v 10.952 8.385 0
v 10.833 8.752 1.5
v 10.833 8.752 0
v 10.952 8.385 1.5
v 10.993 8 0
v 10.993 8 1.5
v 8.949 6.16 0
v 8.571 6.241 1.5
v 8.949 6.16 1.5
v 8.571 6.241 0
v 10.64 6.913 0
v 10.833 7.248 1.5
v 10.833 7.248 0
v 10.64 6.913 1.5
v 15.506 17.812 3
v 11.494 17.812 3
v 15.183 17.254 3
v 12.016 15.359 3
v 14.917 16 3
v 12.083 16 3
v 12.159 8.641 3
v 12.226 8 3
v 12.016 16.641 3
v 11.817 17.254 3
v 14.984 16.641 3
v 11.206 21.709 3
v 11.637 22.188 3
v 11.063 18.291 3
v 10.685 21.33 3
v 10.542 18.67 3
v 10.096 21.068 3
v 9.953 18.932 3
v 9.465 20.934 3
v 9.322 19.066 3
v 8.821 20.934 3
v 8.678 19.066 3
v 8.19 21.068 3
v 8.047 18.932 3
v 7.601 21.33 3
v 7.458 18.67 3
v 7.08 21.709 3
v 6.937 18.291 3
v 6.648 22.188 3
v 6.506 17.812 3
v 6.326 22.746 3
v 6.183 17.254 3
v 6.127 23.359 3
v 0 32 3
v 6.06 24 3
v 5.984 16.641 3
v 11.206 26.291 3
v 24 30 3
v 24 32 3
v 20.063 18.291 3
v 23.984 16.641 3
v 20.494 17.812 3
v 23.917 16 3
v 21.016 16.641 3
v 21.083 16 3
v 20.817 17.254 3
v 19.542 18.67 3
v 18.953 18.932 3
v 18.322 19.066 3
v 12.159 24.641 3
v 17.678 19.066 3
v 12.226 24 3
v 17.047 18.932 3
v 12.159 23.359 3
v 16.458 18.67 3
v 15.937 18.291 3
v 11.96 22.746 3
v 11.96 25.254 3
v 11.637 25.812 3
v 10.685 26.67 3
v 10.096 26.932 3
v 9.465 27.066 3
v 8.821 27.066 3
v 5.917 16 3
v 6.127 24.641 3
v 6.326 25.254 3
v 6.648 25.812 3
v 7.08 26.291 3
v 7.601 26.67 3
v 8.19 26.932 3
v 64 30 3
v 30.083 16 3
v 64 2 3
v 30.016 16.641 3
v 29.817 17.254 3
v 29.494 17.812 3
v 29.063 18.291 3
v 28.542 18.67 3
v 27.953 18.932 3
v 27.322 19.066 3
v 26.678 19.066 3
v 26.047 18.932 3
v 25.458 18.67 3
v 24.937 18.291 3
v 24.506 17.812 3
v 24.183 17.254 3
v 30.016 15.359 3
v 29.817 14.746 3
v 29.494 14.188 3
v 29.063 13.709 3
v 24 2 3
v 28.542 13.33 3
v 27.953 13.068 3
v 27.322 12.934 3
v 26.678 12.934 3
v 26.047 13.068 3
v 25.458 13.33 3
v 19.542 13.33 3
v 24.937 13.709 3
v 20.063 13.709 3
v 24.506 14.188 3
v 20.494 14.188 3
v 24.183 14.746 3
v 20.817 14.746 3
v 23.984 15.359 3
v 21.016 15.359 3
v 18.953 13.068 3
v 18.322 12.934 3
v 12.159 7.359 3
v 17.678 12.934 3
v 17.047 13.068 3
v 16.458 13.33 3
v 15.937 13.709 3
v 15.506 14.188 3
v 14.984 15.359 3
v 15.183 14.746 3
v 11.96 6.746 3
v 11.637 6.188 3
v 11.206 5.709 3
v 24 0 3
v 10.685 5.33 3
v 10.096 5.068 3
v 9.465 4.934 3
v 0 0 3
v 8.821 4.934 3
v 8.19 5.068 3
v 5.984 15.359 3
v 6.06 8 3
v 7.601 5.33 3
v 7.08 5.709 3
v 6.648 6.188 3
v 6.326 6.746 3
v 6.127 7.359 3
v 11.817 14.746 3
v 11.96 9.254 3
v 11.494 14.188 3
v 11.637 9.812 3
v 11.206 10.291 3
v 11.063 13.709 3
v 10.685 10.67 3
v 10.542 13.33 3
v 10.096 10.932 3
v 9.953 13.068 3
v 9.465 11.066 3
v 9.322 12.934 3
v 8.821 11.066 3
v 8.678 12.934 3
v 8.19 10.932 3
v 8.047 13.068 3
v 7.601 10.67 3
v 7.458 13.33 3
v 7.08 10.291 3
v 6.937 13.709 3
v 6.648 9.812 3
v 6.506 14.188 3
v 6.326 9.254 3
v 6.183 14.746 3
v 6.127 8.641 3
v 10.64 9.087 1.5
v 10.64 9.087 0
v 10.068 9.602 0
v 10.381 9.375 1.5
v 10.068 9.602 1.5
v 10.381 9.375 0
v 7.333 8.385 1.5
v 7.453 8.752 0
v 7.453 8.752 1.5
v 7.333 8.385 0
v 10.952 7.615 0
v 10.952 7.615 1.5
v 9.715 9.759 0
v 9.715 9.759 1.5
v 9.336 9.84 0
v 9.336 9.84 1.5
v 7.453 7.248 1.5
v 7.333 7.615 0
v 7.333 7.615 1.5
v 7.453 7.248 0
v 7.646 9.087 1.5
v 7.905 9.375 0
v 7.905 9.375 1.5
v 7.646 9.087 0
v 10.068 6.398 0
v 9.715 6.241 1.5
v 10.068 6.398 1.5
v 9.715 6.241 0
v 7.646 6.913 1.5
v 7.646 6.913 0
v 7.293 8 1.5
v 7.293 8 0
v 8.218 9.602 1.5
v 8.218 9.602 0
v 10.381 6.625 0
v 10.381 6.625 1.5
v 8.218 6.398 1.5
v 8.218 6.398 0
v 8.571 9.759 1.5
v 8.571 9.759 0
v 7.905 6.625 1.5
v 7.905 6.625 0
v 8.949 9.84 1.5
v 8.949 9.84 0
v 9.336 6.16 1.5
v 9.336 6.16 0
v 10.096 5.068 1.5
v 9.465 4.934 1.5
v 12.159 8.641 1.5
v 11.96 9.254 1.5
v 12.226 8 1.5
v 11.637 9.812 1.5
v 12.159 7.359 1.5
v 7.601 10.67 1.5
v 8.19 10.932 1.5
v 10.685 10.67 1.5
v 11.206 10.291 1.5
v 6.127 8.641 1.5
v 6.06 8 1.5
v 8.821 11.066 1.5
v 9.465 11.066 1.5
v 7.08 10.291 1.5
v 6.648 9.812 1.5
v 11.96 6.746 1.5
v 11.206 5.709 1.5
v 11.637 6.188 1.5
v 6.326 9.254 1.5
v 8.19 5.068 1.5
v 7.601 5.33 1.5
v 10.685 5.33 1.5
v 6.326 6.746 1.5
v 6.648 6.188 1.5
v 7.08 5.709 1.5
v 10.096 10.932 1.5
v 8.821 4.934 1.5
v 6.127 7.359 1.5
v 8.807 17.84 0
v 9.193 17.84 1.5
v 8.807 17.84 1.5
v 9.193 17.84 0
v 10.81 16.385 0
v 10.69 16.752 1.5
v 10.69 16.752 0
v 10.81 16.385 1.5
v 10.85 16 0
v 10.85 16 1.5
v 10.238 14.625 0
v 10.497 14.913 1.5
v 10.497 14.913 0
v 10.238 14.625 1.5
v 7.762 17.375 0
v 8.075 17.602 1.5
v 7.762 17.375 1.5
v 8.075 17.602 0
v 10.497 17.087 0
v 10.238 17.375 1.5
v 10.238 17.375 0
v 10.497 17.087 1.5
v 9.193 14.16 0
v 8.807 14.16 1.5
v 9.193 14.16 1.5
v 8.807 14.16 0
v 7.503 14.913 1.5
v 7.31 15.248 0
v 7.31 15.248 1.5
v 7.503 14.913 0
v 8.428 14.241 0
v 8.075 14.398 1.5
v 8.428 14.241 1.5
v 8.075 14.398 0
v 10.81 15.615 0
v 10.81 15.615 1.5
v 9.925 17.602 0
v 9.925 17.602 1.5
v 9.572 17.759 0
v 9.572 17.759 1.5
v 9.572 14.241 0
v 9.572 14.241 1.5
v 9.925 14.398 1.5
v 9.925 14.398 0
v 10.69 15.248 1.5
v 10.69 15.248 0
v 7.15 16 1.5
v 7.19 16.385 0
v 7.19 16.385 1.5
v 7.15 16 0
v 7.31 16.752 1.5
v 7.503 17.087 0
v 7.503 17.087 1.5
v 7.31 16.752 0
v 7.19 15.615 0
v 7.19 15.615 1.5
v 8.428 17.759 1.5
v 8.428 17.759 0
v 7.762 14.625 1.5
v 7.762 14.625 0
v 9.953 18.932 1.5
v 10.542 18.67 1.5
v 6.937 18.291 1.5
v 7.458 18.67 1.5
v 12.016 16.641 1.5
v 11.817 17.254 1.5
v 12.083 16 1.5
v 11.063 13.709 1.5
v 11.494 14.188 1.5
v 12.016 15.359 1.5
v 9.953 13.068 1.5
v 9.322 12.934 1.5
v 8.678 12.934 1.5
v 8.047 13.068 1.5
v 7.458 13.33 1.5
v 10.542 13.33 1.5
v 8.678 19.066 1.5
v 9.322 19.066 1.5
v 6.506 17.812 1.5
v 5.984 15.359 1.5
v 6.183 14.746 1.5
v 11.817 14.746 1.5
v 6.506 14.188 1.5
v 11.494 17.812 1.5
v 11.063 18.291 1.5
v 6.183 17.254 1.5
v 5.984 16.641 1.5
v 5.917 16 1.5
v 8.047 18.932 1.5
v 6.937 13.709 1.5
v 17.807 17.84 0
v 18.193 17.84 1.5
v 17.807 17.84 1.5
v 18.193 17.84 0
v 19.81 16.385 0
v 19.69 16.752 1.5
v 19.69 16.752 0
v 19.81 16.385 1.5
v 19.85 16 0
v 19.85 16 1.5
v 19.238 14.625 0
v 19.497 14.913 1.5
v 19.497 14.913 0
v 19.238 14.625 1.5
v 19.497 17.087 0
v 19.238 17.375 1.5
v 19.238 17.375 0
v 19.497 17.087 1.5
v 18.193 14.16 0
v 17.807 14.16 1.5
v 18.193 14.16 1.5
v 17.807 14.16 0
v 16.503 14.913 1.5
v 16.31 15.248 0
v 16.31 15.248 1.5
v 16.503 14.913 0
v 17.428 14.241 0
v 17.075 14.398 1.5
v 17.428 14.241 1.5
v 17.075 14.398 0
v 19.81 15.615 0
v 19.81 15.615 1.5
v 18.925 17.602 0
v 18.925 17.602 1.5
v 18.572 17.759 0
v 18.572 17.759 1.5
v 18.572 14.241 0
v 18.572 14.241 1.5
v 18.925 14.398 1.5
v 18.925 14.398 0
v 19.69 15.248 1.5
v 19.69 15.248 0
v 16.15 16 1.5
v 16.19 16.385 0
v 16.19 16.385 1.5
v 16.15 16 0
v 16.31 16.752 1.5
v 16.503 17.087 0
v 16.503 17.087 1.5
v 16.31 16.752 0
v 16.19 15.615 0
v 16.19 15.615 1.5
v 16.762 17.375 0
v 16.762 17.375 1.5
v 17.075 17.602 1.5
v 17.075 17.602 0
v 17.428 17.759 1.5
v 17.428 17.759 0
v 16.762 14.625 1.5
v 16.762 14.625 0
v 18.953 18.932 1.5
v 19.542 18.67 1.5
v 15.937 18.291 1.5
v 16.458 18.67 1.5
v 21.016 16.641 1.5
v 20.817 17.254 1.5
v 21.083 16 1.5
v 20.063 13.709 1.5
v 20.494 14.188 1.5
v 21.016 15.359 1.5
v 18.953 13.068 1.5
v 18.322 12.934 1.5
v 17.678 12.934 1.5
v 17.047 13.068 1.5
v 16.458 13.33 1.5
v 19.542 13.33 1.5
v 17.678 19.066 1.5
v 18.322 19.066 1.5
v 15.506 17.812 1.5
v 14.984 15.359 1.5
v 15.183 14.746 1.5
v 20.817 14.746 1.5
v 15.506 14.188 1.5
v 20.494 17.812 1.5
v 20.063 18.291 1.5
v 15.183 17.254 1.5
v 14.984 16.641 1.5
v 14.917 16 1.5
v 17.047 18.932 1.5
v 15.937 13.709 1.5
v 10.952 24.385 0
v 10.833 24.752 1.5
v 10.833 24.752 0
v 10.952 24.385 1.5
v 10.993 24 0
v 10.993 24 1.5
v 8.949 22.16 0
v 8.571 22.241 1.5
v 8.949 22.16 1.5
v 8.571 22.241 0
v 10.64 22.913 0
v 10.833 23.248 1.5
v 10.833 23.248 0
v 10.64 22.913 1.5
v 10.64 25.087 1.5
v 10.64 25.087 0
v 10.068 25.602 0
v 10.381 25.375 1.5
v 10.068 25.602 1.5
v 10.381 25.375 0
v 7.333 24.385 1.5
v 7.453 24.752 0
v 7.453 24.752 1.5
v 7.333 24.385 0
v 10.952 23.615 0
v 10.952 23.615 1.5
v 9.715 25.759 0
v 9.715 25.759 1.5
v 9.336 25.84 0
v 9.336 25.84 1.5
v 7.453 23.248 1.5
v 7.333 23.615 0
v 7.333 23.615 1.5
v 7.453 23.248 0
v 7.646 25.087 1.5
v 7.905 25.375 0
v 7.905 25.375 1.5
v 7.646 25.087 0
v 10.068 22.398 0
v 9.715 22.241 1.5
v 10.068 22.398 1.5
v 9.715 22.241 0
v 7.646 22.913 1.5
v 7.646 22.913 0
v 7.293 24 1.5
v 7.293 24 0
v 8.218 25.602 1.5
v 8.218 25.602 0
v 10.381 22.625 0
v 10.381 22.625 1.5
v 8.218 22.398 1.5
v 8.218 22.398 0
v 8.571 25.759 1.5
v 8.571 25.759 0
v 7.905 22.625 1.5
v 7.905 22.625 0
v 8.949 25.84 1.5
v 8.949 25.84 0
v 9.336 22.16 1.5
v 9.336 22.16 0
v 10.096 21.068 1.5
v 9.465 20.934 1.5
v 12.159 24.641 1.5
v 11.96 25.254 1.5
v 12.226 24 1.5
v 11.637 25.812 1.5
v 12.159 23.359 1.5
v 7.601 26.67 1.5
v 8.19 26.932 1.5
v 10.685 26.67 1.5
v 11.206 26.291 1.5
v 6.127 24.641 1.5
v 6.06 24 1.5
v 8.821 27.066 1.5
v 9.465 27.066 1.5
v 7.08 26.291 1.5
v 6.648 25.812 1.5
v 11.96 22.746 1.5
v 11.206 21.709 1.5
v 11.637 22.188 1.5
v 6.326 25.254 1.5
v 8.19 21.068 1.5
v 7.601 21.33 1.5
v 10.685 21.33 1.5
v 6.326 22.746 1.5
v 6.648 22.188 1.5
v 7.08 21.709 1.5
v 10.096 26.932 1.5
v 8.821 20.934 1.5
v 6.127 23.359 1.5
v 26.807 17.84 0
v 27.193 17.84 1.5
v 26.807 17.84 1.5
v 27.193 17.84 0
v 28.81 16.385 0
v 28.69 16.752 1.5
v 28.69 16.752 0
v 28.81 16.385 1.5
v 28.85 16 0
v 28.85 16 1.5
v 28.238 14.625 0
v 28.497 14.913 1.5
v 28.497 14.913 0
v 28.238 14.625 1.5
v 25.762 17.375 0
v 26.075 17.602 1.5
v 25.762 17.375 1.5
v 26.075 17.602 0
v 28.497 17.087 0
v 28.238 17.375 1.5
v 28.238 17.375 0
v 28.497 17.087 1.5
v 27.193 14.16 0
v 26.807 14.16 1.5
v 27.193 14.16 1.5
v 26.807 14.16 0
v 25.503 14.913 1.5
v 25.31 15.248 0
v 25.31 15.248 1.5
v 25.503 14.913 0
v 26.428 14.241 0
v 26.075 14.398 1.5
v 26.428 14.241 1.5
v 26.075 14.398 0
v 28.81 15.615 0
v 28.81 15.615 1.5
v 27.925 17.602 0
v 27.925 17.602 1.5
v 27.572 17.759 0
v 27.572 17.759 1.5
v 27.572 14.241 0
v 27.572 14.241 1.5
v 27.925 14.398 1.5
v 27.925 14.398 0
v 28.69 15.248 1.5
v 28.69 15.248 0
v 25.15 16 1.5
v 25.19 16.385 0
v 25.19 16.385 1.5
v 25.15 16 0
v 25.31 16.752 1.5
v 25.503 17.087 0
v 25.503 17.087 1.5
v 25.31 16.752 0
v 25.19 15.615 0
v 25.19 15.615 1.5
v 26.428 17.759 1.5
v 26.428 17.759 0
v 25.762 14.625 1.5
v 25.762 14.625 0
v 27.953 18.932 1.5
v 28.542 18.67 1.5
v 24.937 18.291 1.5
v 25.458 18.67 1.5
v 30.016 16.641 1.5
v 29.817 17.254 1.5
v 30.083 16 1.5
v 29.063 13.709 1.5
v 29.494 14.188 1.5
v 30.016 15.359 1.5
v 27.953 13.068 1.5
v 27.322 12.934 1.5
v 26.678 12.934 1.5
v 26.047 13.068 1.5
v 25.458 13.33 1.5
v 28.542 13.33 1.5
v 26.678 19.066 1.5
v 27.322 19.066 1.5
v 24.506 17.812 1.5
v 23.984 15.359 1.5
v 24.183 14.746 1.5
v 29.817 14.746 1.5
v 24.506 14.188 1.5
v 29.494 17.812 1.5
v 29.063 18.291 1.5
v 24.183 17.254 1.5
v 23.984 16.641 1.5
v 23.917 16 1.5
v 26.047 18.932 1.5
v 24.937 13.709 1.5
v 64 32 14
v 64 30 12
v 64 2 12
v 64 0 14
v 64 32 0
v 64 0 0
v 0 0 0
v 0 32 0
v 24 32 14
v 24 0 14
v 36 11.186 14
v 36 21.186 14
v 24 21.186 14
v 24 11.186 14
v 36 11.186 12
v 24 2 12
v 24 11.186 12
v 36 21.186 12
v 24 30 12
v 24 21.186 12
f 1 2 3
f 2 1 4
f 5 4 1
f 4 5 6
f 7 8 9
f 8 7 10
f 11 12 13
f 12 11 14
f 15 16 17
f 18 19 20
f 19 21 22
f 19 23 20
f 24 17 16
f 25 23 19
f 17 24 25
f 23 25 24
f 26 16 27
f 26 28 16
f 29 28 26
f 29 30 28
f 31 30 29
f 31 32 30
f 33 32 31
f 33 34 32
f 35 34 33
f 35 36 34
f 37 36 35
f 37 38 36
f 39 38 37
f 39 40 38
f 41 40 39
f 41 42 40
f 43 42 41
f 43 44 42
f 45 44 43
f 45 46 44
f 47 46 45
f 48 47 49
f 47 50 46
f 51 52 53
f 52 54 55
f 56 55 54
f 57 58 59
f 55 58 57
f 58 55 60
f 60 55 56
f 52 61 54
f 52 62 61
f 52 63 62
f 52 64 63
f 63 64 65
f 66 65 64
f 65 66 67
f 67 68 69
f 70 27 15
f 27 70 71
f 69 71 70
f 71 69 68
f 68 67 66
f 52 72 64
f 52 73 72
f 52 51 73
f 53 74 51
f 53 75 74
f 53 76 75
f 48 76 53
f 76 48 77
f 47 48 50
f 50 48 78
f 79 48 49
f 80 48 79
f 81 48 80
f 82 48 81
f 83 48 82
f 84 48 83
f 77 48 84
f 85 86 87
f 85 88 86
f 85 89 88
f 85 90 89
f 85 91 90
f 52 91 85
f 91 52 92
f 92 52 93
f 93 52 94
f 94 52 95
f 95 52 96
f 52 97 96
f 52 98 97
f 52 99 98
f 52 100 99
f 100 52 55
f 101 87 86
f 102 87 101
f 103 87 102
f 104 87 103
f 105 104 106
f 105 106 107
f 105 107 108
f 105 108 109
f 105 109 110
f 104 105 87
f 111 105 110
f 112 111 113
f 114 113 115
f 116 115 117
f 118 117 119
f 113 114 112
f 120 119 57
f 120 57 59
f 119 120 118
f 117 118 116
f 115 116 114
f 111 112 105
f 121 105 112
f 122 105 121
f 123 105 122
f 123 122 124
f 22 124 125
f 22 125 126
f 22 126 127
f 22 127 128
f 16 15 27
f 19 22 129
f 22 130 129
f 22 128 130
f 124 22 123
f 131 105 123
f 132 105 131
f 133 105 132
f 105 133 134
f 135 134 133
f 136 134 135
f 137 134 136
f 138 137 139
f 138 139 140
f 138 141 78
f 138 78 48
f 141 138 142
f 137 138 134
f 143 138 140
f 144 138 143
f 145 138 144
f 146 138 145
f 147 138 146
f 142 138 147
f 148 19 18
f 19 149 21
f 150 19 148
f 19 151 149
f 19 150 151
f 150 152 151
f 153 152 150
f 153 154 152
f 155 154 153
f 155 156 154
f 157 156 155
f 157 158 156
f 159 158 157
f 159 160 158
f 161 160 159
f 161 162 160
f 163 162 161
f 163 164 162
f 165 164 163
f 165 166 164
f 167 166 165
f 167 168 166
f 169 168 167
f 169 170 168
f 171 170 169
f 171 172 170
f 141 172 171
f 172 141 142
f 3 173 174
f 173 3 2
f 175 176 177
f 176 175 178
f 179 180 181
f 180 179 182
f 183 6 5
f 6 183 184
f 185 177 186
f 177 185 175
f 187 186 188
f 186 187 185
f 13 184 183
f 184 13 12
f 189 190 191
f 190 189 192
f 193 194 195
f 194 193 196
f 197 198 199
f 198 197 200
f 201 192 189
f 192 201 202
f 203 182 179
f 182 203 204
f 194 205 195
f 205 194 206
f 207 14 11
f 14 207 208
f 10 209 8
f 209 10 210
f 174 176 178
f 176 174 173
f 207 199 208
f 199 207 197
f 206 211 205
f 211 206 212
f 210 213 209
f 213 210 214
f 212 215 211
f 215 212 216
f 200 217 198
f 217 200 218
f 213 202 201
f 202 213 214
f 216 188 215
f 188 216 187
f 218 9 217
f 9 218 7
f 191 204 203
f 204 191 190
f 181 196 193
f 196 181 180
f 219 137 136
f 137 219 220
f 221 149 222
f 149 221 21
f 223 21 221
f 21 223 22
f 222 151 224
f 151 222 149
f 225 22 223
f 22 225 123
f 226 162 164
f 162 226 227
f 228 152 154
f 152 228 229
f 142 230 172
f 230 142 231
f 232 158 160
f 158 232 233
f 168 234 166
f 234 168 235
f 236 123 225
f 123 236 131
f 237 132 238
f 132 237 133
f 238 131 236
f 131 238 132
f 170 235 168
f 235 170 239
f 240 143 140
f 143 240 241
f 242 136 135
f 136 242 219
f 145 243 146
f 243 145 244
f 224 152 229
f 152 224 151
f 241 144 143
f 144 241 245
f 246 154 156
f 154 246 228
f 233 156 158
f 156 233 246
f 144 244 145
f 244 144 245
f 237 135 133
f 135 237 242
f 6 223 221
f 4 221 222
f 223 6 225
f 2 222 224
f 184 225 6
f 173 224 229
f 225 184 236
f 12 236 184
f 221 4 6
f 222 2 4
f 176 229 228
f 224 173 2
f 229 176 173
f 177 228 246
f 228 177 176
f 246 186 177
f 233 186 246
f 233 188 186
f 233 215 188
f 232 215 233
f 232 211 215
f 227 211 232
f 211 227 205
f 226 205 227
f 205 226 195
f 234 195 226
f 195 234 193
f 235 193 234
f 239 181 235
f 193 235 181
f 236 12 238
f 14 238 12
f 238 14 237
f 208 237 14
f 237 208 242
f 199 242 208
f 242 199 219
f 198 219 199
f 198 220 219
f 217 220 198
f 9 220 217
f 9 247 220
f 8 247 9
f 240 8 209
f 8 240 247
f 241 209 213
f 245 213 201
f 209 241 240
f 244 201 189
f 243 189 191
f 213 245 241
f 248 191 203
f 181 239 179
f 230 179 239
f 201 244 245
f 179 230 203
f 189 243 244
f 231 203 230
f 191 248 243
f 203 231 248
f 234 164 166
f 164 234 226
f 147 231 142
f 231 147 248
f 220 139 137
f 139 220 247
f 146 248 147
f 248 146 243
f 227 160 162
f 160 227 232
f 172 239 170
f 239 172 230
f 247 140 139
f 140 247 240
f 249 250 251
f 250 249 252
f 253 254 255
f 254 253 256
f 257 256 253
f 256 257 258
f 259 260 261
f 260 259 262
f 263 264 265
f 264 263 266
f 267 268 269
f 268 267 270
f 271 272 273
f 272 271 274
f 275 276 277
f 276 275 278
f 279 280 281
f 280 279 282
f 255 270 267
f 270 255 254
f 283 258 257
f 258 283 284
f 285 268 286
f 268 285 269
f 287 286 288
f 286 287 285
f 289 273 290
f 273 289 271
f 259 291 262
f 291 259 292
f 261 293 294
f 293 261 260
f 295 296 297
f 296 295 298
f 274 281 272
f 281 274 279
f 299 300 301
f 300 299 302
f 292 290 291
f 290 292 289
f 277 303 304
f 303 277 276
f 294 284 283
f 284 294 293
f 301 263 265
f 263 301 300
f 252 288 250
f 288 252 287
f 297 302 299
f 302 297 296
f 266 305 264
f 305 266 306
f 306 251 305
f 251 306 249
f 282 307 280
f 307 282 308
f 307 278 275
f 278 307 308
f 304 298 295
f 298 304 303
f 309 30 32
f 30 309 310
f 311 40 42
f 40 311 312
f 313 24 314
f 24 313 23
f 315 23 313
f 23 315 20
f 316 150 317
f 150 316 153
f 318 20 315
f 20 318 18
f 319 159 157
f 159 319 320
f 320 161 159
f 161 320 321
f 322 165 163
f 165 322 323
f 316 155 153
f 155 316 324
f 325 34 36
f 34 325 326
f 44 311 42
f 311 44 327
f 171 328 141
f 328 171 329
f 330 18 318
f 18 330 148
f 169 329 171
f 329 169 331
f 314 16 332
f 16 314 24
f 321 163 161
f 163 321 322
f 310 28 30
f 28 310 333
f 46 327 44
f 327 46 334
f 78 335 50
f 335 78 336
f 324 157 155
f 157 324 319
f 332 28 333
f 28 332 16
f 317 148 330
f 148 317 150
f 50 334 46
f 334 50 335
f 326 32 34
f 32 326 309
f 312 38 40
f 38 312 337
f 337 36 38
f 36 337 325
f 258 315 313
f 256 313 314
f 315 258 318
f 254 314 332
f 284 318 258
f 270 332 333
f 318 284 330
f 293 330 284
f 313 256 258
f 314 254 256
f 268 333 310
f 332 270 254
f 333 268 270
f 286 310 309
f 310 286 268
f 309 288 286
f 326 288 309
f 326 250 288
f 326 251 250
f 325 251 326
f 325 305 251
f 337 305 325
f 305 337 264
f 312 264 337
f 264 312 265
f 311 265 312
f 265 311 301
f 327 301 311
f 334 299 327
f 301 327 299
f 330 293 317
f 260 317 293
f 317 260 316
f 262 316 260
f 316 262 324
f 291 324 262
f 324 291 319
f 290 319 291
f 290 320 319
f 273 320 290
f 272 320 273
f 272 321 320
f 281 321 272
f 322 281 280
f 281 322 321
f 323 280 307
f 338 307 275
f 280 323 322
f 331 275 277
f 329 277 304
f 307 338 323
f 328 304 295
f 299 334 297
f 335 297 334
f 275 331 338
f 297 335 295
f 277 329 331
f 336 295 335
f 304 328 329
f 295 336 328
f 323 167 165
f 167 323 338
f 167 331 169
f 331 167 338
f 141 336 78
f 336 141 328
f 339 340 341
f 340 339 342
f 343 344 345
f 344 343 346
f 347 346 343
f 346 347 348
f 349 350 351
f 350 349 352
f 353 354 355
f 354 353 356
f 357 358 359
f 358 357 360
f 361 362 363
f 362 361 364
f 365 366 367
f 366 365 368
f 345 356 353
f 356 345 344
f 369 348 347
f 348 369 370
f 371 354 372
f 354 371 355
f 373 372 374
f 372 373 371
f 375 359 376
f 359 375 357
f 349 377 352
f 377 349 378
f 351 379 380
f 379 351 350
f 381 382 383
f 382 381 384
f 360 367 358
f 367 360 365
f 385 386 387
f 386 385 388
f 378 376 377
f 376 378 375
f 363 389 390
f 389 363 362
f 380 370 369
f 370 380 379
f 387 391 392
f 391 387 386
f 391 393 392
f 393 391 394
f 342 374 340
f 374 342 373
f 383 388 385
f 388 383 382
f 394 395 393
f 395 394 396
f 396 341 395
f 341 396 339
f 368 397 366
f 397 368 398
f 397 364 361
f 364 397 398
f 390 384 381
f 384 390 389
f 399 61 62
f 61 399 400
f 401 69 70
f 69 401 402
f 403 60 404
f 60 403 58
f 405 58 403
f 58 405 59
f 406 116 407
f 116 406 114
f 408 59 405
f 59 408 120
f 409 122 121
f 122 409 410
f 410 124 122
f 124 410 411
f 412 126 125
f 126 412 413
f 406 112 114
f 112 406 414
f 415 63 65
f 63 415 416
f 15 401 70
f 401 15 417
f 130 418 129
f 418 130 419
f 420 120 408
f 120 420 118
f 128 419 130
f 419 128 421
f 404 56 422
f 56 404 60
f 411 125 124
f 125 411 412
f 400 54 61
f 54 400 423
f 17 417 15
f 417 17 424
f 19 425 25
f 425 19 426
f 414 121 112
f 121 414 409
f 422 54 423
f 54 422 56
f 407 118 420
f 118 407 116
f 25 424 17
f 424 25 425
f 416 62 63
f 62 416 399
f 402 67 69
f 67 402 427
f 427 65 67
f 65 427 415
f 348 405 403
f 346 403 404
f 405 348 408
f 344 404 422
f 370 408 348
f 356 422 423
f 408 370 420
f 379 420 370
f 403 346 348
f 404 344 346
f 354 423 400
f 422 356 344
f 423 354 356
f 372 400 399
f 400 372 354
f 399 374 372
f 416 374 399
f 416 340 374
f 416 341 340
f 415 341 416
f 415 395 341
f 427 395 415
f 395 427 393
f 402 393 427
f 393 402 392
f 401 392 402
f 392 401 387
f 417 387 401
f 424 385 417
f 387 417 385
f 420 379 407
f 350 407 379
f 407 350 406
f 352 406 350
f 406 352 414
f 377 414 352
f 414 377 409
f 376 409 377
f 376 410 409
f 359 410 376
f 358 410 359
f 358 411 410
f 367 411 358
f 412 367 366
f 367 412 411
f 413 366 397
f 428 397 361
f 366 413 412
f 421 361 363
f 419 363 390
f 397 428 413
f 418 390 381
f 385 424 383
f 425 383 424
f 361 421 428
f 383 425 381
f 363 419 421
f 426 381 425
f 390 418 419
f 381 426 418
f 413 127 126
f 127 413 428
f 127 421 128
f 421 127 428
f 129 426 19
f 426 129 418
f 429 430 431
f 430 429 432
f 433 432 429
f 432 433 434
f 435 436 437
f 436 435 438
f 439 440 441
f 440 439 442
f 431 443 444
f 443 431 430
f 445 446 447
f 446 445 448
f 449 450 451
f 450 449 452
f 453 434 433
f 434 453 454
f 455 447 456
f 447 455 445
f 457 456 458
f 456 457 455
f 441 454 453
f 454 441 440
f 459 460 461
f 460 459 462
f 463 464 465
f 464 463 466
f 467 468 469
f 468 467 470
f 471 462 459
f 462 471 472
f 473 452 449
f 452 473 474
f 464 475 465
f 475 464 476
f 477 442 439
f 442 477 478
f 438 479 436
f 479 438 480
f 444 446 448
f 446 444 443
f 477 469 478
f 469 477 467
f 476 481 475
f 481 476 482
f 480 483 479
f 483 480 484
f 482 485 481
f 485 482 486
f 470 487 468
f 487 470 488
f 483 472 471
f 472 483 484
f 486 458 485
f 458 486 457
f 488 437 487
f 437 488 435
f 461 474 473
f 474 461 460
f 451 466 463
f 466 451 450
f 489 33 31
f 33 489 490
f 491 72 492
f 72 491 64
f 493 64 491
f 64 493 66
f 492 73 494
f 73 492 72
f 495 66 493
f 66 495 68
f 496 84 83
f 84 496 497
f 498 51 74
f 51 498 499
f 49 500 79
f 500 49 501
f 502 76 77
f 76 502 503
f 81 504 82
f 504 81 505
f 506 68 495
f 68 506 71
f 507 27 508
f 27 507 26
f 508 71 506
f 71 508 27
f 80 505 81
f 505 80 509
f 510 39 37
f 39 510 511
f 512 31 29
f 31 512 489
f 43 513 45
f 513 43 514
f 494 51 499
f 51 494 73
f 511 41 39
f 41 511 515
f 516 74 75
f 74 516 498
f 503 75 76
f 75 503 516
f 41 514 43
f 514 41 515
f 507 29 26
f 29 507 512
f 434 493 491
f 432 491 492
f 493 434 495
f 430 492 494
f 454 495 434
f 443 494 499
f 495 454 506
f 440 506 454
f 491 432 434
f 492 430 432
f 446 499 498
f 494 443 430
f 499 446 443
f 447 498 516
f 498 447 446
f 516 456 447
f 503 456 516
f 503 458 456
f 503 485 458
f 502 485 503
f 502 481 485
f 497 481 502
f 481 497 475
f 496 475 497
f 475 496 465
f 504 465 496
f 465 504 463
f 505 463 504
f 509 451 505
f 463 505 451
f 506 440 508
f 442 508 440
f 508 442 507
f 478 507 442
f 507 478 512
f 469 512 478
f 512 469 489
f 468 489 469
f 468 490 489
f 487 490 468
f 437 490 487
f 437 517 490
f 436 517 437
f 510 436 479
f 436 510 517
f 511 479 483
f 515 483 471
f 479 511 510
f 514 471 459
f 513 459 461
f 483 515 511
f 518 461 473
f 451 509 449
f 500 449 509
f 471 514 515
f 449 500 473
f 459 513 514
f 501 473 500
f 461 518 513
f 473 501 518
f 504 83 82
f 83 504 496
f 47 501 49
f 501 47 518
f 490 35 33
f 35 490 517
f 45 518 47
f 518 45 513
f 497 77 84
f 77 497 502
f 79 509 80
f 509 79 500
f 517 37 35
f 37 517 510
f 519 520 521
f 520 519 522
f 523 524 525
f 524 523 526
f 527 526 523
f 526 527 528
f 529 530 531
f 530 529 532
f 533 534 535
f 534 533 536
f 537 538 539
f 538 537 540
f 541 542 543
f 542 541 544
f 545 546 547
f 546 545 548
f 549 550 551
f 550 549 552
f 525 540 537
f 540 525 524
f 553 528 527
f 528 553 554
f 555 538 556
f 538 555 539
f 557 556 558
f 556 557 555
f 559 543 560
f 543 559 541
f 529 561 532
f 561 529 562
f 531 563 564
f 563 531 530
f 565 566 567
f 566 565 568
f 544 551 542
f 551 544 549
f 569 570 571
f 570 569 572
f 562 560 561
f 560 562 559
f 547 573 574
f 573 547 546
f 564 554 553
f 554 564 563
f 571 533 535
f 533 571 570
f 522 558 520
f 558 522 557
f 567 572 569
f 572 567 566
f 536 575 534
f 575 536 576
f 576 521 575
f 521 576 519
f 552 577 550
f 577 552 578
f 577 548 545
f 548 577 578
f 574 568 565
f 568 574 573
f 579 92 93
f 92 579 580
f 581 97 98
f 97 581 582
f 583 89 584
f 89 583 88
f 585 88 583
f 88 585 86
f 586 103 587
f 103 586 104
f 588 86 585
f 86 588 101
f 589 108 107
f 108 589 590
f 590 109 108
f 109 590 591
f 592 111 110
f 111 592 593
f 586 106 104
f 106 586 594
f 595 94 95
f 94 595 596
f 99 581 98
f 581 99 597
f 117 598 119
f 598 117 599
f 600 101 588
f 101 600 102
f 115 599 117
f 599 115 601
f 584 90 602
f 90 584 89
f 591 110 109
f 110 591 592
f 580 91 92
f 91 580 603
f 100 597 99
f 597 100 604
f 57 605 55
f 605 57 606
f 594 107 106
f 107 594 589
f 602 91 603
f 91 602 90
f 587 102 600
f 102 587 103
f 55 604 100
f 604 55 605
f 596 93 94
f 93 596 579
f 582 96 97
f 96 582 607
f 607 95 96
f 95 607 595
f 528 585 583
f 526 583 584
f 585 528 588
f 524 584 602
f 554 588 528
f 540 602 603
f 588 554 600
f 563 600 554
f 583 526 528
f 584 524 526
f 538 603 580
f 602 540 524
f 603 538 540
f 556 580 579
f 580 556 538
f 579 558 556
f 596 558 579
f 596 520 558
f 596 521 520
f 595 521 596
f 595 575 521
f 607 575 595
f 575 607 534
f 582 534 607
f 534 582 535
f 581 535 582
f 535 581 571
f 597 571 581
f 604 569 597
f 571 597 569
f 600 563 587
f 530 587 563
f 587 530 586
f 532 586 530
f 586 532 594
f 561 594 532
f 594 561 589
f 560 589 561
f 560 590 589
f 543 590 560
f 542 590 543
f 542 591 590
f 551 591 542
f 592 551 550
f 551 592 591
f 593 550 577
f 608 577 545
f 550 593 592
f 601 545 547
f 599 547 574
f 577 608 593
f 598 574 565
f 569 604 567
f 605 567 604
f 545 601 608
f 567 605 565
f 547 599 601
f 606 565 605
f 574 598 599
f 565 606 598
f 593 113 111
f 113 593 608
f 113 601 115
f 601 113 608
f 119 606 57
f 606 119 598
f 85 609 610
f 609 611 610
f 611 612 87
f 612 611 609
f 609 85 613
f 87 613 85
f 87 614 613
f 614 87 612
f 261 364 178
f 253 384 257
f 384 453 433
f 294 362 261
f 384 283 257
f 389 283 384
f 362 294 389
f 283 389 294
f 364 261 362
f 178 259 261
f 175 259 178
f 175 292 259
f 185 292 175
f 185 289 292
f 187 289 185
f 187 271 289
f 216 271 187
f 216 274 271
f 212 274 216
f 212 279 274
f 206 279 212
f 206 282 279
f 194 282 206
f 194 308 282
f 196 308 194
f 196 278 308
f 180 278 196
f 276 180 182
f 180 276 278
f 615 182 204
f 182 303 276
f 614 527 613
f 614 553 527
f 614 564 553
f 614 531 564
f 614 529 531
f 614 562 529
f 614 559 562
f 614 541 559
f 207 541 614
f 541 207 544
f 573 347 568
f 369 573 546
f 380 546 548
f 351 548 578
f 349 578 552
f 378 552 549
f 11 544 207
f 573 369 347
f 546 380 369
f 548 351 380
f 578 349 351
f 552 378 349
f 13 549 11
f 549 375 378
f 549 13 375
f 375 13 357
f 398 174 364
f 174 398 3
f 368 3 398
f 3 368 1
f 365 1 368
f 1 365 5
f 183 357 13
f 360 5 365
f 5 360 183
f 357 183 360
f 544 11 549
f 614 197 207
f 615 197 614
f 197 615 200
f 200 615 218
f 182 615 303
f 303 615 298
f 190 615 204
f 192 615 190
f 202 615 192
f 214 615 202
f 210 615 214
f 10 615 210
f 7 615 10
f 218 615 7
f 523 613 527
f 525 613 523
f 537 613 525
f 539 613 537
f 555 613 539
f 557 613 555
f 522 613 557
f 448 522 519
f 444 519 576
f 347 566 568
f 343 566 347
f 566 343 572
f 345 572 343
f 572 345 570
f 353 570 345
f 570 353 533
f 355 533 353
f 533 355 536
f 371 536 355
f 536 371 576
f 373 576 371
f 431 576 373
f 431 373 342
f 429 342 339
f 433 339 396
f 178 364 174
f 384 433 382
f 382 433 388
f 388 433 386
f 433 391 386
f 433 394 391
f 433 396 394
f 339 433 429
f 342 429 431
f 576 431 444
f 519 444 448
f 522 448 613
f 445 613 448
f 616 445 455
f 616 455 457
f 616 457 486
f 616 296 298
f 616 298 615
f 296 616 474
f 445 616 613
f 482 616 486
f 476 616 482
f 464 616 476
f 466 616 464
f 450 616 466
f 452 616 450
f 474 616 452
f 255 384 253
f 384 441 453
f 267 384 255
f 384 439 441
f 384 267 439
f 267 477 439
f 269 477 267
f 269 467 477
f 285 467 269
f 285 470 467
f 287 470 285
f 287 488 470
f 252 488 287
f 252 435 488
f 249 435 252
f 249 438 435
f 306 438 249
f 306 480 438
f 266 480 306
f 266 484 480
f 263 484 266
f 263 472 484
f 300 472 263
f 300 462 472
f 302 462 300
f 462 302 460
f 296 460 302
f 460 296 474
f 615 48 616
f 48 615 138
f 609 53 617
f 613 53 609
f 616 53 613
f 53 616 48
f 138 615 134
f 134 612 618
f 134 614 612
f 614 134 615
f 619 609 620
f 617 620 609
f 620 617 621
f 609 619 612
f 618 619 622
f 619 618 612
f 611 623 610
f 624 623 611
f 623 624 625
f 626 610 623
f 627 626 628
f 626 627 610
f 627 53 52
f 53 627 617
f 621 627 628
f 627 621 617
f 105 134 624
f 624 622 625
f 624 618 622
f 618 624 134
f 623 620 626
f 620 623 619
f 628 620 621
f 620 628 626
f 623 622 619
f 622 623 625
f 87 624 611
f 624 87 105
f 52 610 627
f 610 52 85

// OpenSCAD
// License: CC0 Universal 1.0
// Notes: Weekend project. Hacks galore.
// FWIW, most things are dialed in, but there may be weird places
// that are happy only at a certain range/constants. Defaults are 
// mostly appropriate for the spool holder this is designed for though.

$fn = 30;

// ** Bracket Panel Settings **
// These control how the bracket (which contacts the OpenBeam) is shaped
bracket_thickness = 3;
bracket_length = 64;
bracket_slot_width = 28;
bracket_depth = 12; // Note that thickness of other parts affects depth
						// of the slot. bracket_side_thickness+bracket_thickness
						// contribute to the overall shape. You must account
						// for this in the parameterization.
						// bracket_depth-(bracket_side_thickness+bracket_thickness)


// ** Side Panel Settings **
// Change bracket_side_height if you want the captive area to be
// higher. This adjusts other dependents as well, such as the front
// retainer.
bracket_side_height = bracket_length/1.60;
bracket_side_width = bracket_depth; //bracket_thickness+bracket_side_height;
bracket_side_thickness = 2;

// ** Front Retention Plate Settings **
bracket_retainer_thickness = 2;
bracket_retainer_dist_from_panel = bracket_depth;
bracket_retainer_height = bracket_length-bracket_side_height;

// ** Bottom Panel Settings **
bracket_bottom_length = 0;
bracket_bottom_thickness = bracket_depth+bracket_retainer_thickness;

// ** Drill Settings **
// M3 screws are used for mounting to OpenBeam extrusion
// drill_orientation: 1 = horizontal, 0 = vertical.
// Vertical notes:
// 1. A front pocket is created to ease the use of driving in
//    M3 screws at bottom. Not present on the horizontal version.
// 2. The rear panel is also extended by 
//    vertical_panel_bottom_extension. See its notes below for info.
drill_orientation = 2; // 2 == combined, 1 == horizontal, 0 = vertical

// When using vertical drills, extending the bottom by a bit helps with
// holder strain relief, since it can't be "clipped" to the back of
// the extrusion as on the horizontal configuration.
// This is a non-op if horizontal drills are used.
vertical_panel_bottom_extension = 0; 

num_drills  = 3;
drill_depth = bracket_thickness;
inset_depth = 1.5;

// Note that drill will be slightly larger or smaller on some printers. 
// Adjust as needed. 
drill_size  = 3.7; 

// ** Calculations **
// Normally you do not need to change these unless something is weird.

// bracket_width
// Combines the slot width into the total bracket width. Asking for
// slot width is easier/less annoying than making the user do the 
// math themselves.
bracket_width = bracket_slot_width+(bracket_side_thickness*2);

module side_panels() {
	cube([bracket_side_height, bracket_side_thickness, 
		bracket_side_width]);
}

module drills(num_drills) {
	for ( i = [1 : num_drills ] ) {
		if (drill_orientation == 1) {
		  // Horizontal orientation. Add 7mm spacing from top so that
		  // the adapter ends up peeking over the extrusion a bit..
		  // that way, the holder can be placed flush with the
	     // rear of the holder for additional support.
		  translate([bracket_width/3+7, i*(bracket_width/4), -1]) cylinder(r=drill_size/2, h=drill_depth+1);
		  translate([bracket_width/3+7, i*(bracket_width/4), bracket_thickness-inset_depth]) cylinder(r=drill_size/1.2, h=inset_depth);
		} else if(drill_orientation == 0) {
	   	  // Vertical orientation
		  translate([(i*9), bracket_width/2, -1]) cylinder(r=drill_size/2, h=drill_depth+1);
		  translate([(i*9), bracket_width/2, bracket_thickness-inset_depth]) cylinder(r=drill_size, h=inset_depth);
		} else if(drill_orientation == 2) {
		  // This combines both horizontal and vertical orientations
		  // but adds a bit of spacing to the drills.
		  // Max drills is 3 in horizontal, but more for vertical.

		  // Horizontal orientation
		  if(i % 2 == 1) { // Don't do even numbered drills
		  	translate([bracket_width/3.5, i*(bracket_width/4), -1]) cylinder(r=drill_size/2, h=drill_depth+1);
		  	translate([bracket_width/3.5, i*(bracket_width/4), bracket_thickness-inset_depth]) cylinder(r=drill_size/1.2, h=inset_depth);
		  }

  	     // Vertical orientation
		  translate([(i*9), bracket_width/2, -1]) cylinder(r=drill_size/2, h=drill_depth+1);
		  translate([(i*9), bracket_width/2, bracket_thickness-inset_depth]) cylinder(r=drill_size/1.2, h=inset_depth);
		}
	}
}

union() {
	// Back panel
	difference() {
		if(drill_orientation == 1) {
		translate([0, 0, 0]) cube([bracket_length, bracket_width, bracket_thickness]);
		} else {
		translate([0, 0, 0]) cube([bracket_length+vertical_panel_bottom_extension, bracket_width, bracket_thickness]);
		}
		drills(num_drills);
	}

	// Bottom panel. -.1 for patchup.
	translate([bracket_length-.1,0,0]) 
		#cube([bracket_bottom_length, bracket_width, 
			bracket_bottom_thickness]);

	// Side panel -- Left
	translate([bracket_length-bracket_side_height, 0, 0]) 
		side_panels();

	// Side panel -- Right
	translate([bracket_length-bracket_side_height, bracket_width-2, 0]) 
		side_panels();

	// Retainer panel with center cutout
	difference() {
		translate([bracket_retainer_height, 0, 
			bracket_retainer_dist_from_panel]) cube([bracket_side_height, 
				bracket_width, bracket_retainer_thickness]);
		if(drill_orientation == 0 || drill_orientation == 2) {
		// Cutout, centered based on drill if doing vertical drills
		translate([bracket_retainer_height, bracket_width/PI+1, 
			bracket_retainer_dist_from_panel]) cube([4*num_drills,10,5+bracket_retainer_thickness]);
		}
	}
}

translate([30,30,30]) import("R2_spool_holder.scad");
